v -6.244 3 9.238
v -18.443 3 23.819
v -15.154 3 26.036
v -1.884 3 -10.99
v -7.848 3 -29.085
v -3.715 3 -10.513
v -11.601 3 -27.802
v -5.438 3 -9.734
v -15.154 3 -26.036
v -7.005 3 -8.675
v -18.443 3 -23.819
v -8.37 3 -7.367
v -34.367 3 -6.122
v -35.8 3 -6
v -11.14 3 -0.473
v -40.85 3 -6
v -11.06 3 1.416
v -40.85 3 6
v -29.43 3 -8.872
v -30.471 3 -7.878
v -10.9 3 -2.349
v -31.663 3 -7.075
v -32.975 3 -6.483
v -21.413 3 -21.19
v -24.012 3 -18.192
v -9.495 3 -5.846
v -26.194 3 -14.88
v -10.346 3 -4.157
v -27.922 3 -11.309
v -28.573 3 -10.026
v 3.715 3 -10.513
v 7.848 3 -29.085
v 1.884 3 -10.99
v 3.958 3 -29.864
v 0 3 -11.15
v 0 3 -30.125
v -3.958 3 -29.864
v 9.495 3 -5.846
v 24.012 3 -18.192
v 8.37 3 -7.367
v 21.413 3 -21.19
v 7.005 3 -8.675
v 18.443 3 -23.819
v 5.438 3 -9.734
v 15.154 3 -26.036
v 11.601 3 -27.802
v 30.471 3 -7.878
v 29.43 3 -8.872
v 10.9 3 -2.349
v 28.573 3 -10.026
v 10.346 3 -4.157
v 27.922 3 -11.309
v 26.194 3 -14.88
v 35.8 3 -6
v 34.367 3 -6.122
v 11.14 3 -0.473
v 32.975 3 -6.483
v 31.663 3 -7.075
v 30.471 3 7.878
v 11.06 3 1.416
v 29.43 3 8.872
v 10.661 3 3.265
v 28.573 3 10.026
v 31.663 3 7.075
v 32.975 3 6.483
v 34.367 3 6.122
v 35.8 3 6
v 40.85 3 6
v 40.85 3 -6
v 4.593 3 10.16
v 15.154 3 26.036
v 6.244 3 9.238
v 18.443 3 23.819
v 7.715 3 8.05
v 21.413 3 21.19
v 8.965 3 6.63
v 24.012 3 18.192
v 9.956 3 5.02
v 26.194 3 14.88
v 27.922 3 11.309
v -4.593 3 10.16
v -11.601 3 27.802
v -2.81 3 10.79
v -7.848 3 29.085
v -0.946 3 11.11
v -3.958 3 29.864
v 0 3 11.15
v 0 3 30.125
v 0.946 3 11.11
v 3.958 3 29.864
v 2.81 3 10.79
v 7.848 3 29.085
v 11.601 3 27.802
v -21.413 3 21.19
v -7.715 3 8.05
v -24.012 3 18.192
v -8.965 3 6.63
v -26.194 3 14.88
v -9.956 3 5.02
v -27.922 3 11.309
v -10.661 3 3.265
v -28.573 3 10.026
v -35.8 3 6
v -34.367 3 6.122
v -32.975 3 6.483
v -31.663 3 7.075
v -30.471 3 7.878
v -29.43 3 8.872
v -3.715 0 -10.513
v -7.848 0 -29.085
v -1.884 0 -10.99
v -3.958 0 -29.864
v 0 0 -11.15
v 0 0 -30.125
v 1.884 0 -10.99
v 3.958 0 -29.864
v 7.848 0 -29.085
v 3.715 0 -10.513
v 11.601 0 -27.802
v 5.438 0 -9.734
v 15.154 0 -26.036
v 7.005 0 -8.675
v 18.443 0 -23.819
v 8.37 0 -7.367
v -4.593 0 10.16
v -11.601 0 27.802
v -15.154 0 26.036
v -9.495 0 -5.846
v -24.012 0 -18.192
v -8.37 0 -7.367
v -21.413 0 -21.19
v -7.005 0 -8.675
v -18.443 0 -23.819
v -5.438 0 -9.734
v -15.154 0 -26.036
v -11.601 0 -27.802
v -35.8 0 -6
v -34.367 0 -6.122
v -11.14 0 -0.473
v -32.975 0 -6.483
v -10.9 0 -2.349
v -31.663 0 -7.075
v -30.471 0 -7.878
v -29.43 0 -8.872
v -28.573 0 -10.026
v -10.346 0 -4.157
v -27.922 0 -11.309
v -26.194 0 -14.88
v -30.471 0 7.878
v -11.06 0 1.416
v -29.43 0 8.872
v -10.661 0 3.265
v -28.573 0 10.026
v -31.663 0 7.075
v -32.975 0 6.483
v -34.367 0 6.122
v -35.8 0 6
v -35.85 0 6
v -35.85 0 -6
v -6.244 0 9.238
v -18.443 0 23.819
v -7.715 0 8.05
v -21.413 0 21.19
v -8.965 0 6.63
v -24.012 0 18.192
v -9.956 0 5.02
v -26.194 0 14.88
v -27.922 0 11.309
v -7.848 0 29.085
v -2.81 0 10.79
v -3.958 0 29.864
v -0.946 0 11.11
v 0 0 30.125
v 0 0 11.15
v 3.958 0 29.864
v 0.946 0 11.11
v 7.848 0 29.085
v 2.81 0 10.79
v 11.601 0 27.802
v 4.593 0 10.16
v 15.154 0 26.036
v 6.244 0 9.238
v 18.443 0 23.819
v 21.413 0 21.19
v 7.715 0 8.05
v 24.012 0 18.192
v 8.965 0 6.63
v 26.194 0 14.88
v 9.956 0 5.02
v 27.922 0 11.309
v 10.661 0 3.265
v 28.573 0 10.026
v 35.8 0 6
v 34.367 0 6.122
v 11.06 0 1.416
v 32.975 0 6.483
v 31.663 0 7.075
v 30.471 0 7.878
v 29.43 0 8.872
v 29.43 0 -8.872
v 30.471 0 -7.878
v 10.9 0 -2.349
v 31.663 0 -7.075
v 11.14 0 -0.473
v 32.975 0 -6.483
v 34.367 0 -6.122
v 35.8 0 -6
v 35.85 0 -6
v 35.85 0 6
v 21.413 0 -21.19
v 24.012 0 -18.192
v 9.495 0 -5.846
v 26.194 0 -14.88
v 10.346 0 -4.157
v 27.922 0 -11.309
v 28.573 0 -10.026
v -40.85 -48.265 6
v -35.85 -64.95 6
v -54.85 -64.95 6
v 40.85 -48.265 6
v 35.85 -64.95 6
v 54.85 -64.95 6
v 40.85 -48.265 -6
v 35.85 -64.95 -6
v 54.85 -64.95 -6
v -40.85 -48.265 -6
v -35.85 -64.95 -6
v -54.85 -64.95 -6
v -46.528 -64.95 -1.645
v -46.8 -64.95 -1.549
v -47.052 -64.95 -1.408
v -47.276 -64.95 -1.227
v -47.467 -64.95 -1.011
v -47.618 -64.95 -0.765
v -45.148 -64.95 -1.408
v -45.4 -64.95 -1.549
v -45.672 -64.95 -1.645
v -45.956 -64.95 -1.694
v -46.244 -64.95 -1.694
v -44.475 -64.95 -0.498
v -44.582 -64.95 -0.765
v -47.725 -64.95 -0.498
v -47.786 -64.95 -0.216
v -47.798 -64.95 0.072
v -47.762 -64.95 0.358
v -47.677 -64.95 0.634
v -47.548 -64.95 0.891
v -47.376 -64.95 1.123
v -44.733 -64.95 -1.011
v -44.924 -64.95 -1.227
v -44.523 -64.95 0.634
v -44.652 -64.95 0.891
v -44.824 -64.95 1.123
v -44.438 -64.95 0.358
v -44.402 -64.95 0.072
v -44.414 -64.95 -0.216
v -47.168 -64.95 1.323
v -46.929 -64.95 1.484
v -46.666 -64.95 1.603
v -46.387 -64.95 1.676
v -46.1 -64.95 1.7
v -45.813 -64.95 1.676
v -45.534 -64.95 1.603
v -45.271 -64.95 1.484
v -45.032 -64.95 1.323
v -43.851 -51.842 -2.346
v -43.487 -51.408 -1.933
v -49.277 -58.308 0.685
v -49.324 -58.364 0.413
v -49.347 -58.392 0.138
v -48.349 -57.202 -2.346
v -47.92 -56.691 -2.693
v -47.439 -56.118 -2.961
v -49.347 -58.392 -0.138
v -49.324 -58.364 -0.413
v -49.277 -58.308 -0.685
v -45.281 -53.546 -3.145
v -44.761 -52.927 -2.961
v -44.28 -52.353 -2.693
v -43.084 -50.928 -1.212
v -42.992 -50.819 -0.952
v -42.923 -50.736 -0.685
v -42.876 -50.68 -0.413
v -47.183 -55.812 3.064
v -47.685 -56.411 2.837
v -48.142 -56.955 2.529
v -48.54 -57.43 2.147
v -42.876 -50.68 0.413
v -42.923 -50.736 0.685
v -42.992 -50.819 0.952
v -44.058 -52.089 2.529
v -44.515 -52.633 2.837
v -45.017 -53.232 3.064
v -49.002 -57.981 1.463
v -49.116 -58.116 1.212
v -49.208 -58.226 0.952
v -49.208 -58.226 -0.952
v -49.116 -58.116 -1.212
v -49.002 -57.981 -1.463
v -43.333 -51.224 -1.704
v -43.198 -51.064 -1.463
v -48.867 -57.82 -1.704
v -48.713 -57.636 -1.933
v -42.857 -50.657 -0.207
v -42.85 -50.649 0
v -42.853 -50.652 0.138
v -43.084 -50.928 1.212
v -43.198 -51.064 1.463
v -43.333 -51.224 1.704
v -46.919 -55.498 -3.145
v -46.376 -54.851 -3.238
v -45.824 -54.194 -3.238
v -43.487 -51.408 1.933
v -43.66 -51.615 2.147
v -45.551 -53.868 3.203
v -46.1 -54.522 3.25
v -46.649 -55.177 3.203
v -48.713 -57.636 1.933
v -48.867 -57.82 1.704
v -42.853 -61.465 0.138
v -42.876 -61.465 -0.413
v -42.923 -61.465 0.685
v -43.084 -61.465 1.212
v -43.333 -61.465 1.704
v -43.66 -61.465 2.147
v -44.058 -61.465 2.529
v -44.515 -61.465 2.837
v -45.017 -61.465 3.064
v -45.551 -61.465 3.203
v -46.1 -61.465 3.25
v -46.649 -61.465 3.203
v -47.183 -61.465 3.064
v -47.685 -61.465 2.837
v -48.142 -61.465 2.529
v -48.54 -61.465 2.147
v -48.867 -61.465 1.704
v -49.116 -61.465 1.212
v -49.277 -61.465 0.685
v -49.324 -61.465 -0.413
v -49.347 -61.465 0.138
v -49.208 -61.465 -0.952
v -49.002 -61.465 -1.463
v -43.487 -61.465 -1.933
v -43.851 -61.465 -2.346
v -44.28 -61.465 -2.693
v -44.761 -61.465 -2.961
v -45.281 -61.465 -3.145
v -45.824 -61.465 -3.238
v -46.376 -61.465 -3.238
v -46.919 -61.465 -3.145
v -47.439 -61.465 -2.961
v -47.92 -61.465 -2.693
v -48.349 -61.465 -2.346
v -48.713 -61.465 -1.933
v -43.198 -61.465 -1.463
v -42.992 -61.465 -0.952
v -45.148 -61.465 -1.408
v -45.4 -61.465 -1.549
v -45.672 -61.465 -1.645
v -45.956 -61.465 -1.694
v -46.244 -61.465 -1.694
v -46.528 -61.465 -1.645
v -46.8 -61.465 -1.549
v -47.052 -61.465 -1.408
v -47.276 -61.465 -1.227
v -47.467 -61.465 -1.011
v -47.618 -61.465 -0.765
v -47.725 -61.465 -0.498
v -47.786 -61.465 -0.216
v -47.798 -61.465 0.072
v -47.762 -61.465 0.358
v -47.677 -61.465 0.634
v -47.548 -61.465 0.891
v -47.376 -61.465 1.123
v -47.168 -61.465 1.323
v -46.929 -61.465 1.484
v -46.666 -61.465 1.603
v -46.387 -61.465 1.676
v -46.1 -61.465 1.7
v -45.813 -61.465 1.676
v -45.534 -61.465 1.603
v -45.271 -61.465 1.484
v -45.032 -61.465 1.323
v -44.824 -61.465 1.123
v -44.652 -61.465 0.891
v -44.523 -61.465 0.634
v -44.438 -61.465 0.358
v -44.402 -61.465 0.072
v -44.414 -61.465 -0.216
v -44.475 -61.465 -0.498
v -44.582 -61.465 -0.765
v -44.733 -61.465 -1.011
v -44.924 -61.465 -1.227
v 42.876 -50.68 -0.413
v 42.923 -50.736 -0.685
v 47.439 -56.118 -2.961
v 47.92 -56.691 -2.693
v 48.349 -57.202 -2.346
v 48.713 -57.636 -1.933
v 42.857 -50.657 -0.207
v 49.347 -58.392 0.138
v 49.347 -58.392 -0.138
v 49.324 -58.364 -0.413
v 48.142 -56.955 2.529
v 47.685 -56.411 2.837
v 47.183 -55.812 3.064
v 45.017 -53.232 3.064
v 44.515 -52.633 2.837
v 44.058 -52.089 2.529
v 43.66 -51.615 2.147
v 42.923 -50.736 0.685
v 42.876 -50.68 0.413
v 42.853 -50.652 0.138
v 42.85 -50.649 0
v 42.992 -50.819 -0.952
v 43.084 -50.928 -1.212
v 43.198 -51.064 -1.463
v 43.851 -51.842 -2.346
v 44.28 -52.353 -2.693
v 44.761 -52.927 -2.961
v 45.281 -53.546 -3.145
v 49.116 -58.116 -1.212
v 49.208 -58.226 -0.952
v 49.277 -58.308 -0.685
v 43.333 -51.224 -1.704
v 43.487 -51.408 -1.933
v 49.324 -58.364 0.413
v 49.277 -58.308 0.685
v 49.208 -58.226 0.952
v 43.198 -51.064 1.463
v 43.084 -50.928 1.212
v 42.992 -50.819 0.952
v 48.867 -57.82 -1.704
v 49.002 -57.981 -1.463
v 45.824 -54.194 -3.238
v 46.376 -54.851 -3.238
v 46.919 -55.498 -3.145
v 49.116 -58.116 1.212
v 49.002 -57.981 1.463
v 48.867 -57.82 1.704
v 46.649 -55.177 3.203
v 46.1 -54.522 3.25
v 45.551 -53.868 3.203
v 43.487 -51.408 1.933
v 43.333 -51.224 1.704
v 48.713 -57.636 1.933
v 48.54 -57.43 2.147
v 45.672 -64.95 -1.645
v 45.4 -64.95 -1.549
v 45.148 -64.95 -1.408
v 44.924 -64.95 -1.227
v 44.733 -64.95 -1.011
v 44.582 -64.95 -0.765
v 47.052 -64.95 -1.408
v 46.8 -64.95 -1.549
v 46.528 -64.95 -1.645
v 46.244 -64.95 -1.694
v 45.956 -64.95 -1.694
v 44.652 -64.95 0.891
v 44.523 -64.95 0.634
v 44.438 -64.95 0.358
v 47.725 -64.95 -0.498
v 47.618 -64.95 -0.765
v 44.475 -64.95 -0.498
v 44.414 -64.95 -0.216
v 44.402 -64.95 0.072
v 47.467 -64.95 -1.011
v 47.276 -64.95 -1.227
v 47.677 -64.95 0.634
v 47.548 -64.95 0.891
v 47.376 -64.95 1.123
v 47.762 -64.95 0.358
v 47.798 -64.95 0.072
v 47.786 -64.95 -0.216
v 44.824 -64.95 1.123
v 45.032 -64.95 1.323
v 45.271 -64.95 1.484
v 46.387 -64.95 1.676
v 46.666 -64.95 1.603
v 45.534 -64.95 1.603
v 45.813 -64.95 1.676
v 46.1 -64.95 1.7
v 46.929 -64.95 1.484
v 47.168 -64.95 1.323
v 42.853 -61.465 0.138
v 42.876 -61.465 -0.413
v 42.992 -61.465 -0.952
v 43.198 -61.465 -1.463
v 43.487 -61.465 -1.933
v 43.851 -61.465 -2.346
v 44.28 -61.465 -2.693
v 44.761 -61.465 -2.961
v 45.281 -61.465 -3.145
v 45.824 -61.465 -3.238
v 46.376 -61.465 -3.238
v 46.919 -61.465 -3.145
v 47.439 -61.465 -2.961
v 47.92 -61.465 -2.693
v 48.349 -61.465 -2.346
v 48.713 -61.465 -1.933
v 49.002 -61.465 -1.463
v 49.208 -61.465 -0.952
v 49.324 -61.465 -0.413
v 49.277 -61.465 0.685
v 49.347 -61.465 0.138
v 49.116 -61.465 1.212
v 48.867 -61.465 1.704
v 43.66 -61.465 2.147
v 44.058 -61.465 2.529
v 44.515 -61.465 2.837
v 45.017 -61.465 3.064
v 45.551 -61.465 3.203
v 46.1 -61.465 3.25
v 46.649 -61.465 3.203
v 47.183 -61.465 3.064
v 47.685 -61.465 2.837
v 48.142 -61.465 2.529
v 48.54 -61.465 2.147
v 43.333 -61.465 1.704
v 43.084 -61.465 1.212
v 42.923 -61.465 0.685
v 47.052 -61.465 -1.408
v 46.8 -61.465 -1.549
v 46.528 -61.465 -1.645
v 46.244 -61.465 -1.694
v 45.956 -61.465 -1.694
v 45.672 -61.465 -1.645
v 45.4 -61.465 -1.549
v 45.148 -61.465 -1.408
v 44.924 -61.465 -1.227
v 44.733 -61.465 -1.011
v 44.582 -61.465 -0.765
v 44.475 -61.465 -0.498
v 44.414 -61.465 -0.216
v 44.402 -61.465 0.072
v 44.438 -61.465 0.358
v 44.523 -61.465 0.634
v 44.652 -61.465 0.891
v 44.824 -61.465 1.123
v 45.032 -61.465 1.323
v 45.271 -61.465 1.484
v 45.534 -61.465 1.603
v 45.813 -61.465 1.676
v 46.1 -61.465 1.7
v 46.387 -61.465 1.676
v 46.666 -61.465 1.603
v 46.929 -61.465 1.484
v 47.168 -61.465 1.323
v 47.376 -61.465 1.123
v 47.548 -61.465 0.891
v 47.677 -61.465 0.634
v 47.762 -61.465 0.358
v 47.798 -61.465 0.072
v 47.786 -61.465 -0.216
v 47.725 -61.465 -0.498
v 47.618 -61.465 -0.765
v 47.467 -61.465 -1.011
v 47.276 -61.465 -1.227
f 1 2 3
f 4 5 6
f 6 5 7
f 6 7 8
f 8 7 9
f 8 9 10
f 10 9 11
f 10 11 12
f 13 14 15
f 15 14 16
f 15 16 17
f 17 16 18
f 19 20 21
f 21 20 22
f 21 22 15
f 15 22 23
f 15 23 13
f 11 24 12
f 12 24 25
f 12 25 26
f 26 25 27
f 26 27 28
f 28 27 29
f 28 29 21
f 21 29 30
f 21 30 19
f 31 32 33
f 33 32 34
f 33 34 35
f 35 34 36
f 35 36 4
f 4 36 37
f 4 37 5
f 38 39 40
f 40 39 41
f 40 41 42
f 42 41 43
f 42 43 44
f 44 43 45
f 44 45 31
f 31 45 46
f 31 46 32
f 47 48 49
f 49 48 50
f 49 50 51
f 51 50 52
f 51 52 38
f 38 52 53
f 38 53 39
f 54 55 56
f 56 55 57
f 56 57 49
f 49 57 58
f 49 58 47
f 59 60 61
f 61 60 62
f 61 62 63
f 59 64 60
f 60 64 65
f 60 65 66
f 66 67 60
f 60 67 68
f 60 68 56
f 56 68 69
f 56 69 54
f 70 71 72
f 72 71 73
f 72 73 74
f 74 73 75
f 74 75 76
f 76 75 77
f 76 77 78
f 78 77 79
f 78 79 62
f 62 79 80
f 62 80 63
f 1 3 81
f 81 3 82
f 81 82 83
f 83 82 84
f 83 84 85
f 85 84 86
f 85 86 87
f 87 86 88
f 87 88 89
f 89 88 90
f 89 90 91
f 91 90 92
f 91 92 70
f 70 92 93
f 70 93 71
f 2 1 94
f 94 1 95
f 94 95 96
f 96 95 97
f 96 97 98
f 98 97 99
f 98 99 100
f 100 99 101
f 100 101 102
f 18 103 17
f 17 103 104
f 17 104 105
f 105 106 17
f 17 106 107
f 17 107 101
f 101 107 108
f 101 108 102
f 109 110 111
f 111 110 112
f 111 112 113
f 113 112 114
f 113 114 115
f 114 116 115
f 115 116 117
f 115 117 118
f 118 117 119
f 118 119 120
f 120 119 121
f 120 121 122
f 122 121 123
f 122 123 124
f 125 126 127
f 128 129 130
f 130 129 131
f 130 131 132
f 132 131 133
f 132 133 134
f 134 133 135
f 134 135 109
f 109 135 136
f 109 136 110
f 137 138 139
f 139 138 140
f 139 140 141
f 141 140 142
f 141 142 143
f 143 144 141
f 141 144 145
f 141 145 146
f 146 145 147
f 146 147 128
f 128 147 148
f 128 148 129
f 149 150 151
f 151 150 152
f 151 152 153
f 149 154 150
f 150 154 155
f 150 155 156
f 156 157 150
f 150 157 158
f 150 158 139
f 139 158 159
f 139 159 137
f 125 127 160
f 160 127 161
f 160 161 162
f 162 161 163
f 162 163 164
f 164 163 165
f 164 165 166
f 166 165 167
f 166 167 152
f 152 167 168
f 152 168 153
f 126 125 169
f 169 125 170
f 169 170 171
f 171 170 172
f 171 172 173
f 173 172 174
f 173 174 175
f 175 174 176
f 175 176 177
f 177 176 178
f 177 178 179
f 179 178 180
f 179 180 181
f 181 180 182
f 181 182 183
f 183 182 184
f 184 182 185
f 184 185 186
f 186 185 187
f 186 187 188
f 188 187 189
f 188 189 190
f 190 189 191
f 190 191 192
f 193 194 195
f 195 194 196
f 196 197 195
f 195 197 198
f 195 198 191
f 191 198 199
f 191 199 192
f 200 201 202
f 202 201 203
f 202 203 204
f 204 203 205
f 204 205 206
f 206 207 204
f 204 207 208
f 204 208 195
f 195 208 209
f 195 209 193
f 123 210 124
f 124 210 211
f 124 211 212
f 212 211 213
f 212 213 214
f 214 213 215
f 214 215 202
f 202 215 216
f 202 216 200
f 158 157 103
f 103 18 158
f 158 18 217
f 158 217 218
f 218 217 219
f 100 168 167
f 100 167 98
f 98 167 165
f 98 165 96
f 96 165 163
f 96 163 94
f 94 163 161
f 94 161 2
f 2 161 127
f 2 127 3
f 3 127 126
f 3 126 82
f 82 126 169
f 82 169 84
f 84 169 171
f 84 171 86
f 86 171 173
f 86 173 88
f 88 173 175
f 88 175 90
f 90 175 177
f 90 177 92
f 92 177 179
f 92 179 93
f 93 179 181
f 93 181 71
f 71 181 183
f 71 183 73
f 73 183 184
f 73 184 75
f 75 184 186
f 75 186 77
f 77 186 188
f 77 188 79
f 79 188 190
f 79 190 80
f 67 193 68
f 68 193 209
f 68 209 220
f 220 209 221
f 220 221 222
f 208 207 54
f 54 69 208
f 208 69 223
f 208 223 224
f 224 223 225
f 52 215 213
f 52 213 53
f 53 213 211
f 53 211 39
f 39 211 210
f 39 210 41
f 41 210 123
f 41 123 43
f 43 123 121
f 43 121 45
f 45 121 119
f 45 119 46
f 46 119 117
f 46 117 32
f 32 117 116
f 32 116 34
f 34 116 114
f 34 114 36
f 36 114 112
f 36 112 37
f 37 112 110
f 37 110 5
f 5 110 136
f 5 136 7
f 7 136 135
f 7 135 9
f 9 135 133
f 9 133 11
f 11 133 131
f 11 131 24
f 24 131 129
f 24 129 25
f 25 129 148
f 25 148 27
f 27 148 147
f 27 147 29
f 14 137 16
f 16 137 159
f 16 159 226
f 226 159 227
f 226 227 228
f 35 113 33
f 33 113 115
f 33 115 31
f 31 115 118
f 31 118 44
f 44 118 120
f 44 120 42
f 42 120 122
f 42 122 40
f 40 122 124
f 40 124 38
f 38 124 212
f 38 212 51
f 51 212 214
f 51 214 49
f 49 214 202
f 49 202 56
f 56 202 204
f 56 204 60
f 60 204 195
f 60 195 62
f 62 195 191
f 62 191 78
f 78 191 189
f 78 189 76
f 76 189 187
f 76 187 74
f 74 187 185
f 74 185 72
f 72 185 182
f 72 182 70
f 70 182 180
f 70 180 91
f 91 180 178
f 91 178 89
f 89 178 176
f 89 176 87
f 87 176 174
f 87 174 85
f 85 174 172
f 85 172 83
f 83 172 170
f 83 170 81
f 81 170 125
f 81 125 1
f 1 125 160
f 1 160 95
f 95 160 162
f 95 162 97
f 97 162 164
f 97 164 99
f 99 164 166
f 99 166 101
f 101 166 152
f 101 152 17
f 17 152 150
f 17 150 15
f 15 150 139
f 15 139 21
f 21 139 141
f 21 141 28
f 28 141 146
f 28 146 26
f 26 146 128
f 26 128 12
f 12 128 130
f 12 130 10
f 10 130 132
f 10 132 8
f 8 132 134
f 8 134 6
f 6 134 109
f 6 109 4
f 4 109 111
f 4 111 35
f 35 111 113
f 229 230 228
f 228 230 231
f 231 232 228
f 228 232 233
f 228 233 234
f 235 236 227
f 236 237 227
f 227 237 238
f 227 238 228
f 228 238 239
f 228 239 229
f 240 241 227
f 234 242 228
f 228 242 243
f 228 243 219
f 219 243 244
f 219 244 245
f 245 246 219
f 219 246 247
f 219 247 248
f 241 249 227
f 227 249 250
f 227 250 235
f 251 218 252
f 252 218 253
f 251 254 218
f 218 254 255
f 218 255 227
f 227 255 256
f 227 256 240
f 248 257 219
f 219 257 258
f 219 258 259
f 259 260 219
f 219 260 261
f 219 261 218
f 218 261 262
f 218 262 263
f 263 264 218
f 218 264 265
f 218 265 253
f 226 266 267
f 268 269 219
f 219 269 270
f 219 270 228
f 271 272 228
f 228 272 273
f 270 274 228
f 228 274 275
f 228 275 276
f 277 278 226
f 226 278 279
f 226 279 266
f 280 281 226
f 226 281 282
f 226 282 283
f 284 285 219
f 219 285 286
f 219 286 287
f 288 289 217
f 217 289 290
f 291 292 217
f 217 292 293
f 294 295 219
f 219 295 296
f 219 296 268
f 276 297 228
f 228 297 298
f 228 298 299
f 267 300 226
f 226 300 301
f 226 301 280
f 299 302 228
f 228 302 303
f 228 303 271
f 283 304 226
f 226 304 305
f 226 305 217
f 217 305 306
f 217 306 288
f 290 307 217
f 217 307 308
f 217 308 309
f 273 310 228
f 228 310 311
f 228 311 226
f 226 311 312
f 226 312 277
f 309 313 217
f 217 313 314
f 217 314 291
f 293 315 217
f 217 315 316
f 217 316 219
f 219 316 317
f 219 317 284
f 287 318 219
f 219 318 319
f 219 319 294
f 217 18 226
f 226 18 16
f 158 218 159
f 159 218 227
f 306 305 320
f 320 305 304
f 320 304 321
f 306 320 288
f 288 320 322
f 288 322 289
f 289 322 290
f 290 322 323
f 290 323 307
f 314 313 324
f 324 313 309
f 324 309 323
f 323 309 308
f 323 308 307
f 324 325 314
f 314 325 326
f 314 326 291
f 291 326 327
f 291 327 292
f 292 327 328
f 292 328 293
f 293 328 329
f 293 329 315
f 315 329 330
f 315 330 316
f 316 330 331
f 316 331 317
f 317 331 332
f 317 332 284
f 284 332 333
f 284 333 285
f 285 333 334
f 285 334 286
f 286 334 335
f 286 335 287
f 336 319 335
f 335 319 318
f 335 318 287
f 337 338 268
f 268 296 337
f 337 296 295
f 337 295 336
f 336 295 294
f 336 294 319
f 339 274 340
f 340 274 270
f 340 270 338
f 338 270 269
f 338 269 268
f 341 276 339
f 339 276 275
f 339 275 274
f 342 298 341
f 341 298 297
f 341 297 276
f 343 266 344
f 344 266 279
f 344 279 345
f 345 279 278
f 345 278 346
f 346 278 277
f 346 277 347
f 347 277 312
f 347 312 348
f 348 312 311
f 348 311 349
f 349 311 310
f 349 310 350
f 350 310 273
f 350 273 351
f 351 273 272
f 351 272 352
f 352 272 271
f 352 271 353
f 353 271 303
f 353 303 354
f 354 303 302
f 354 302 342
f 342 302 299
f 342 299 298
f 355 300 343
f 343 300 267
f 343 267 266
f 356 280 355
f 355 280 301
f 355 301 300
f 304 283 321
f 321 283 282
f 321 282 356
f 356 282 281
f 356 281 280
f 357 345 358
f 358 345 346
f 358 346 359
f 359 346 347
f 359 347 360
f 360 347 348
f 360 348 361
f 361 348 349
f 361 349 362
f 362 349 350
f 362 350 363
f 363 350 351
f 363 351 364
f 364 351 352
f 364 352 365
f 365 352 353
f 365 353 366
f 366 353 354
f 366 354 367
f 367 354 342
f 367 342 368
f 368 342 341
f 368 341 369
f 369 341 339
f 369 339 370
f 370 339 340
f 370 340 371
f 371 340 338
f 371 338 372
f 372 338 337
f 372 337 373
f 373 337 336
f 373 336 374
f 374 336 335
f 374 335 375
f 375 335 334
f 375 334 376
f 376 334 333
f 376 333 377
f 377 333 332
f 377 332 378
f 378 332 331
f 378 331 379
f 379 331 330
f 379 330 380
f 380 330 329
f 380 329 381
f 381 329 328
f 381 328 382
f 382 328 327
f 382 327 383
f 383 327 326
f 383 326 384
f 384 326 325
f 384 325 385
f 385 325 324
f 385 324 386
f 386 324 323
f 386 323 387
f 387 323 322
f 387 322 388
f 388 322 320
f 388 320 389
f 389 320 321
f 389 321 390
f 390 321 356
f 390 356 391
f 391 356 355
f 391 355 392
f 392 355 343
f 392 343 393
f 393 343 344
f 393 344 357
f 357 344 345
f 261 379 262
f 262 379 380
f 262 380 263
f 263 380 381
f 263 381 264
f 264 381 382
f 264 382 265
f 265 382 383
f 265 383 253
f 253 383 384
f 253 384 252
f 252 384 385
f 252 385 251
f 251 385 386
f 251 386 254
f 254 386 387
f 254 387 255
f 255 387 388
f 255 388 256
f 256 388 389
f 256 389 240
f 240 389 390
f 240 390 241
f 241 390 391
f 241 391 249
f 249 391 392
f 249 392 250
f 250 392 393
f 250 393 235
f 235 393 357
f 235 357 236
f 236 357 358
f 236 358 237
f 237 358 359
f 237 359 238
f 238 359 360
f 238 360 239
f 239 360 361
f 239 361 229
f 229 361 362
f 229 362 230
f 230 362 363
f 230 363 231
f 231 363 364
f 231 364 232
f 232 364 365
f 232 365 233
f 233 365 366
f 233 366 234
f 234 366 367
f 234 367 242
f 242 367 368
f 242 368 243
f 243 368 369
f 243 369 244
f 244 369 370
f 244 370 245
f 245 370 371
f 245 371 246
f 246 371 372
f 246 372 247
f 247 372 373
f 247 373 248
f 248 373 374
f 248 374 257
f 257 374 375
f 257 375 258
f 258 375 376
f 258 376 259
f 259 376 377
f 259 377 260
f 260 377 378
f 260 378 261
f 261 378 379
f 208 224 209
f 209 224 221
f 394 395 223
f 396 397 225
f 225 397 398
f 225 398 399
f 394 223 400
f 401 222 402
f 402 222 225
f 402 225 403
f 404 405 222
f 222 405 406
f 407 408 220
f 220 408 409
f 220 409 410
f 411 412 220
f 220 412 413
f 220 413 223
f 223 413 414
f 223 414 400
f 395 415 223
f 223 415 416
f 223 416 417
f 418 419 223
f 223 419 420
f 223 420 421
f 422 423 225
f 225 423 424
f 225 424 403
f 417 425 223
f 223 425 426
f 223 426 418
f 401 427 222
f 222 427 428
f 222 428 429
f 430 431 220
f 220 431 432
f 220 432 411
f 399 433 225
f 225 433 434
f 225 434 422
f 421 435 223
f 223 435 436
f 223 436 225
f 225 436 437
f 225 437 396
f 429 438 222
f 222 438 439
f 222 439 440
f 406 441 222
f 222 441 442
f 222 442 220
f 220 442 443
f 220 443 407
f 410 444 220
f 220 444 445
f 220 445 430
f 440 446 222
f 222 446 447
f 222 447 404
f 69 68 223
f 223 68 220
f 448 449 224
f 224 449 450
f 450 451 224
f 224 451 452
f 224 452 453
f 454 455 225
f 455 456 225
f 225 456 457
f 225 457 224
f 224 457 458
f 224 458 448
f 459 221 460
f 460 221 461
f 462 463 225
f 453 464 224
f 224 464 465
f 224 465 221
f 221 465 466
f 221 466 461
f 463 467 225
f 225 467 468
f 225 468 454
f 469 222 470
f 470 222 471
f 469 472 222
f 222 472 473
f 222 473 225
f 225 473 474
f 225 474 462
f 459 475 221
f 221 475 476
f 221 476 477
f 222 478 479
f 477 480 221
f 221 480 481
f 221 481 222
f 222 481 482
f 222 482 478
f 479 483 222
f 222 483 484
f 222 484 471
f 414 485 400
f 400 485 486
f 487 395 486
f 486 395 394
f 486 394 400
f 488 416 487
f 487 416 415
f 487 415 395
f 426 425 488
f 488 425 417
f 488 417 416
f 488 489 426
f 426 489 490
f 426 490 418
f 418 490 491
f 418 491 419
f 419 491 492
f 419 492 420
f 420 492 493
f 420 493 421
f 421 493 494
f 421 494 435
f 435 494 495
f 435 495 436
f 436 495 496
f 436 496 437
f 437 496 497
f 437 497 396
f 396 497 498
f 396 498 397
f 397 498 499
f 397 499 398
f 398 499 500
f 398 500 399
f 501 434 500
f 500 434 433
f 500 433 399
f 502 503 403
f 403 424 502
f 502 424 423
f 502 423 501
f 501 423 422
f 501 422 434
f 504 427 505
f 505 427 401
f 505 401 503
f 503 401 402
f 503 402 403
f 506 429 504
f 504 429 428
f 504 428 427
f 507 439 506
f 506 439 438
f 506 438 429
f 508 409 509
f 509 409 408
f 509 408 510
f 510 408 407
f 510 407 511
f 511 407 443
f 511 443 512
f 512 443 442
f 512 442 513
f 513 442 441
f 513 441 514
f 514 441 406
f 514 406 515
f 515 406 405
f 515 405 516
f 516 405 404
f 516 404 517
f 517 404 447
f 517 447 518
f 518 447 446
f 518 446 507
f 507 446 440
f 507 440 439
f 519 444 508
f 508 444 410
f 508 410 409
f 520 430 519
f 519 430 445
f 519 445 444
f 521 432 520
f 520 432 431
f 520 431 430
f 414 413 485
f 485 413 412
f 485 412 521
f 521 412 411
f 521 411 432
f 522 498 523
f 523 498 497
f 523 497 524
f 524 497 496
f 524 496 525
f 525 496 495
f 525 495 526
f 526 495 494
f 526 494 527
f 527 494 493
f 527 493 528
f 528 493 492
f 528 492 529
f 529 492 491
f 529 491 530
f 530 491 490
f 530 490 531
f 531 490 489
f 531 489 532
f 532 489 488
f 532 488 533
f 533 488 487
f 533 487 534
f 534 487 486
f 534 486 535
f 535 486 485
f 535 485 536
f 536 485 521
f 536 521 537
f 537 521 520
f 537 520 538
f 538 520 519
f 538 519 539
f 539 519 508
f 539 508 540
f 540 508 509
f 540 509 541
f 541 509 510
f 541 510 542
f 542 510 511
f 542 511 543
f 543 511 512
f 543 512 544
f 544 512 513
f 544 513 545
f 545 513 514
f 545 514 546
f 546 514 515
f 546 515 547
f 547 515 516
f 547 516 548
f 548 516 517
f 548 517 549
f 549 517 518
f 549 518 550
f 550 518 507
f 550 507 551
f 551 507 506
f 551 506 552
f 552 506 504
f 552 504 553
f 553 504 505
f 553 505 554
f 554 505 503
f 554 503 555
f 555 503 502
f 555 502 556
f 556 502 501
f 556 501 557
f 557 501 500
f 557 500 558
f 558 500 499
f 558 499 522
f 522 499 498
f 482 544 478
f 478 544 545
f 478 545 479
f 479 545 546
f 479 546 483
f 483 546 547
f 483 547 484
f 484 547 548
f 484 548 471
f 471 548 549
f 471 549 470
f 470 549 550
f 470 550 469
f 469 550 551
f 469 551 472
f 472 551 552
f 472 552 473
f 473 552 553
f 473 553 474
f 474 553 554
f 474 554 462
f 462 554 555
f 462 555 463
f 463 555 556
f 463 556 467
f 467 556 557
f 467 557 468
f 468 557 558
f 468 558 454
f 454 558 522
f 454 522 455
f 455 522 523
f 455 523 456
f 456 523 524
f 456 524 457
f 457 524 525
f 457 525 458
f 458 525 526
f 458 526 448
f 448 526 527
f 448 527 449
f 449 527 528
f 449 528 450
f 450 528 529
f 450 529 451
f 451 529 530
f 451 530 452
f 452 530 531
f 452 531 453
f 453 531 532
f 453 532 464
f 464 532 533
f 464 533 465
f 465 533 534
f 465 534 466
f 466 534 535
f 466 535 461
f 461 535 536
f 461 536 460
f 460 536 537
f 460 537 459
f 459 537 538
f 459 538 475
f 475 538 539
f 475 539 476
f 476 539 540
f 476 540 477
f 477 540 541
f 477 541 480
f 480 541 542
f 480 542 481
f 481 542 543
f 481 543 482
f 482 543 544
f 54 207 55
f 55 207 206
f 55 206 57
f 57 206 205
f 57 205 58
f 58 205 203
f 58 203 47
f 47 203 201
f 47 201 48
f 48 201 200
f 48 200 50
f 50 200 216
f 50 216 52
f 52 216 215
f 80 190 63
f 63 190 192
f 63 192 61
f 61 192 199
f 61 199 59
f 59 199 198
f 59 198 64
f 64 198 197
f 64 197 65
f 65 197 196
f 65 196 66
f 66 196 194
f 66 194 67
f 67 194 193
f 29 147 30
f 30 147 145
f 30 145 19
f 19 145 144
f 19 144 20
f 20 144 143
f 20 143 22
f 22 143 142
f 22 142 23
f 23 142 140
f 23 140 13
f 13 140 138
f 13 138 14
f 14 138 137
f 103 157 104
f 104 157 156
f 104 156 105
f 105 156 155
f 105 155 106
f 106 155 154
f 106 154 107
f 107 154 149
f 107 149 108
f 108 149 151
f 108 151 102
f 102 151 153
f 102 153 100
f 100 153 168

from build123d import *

# Parameters (mm, degrees)
SKETCH8_R           = 11.15
BOSS_EXTRUDE4_DEPTH = 3
BOSS_EXTRUDE5_DEPTH = 12
SKETCH11_R          = 3.25
CUT_EXTRUDE3_DEPTH  = 13.2
SKETCH14_R          = 1.7
CUT_EXTRUDE4_DEPTH  = 17.684550296
FILLET1_R           = 8.5


with BuildPart() as part:
    # Sketch8 → Boss-Extrude4 (new body)
    with BuildSketch(Plane(origin=(0, 0, 0), x_dir=(1, 0, 0), z_dir=(0, 1, 0))):
        with BuildLine():
            Line((-35.85, -6), (-29.521443478, -6))
            ThreePointArc((-29.521443478, -6), (0, -30.125), (29.521443478, -6))
            Line((29.521443478, -6), (35.85, -6))
            Line((35.85, -6), (35.85, 6))
            Line((35.85, 6), (29.521443478, 6))
            ThreePointArc((29.521443478, 6), (0, 30.125), (-29.521443478, 6))
            Line((-29.521443478, 6), (-35.85, 6))
            Line((-35.85, 6), (-35.85, -6))
        make_face()
        Circle(SKETCH8_R, mode=Mode.SUBTRACT)
    extrude(amount=BOSS_EXTRUDE4_DEPTH)

    # Sketch9 → Boss-Extrude5 (add)
    with BuildSketch(Plane.XY.offset(6)):
        Polygon((-35.85, 3), (-35.85, -64.95), (-54.85, -64.95), (-40.85, -48.265449704), (-40.85, 3), align=None)
    boss_extrude5 = extrude(amount=-BOSS_EXTRUDE5_DEPTH)

    # Sketch11 → Cut-Extrude3 (cut)
    with BuildSketch(Plane.ZX.offset(-48.265449704)):
        with Locations((0, -46.1)):
            Circle(SKETCH11_R)
    cut_extrude3 = extrude(amount=-CUT_EXTRUDE3_DEPTH, mode=Mode.SUBTRACT)

    # Sketch14 → Cut-Extrude4 (cut, through all)
    with BuildSketch(Plane.ZX.offset(-48.265449704)):
        with Locations((0, -46.1)):
            Circle(SKETCH14_R)
    cut_extrude4 = extrude(amount=-CUT_EXTRUDE4_DEPTH, mode=Mode.SUBTRACT)

    # Mirror3: Boss-Extrude5, Cut-Extrude3, Cut-Extrude4 across plane
    add(boss_extrude5.mirror(Plane(origin=(0, 0, 0), x_dir=(0, 0, 1), z_dir=(1, 0, 0))))
    add(cut_extrude3.mirror(Plane(origin=(0, 0, 0), x_dir=(0, 0, 1), z_dir=(1, 0, 0))), mode=Mode.SUBTRACT)
    add(cut_extrude4.mirror(Plane(origin=(0, 0, 0), x_dir=(0, 0, 1), z_dir=(1, 0, 0))), mode=Mode.SUBTRACT)

    # Fillet1
    fillet1_edges = [part.edges().sort_by_distance(p)[0] for p in [
        (-29.521443478, 1.5, -6),
        (29.521443478, 1.5, -6),
        (29.521443478, 1.5, 6),
        (-29.521443478, 1.5, 6),
    ]]
    fillet(fillet1_edges, radius=FILLET1_R)


solid = part.part
